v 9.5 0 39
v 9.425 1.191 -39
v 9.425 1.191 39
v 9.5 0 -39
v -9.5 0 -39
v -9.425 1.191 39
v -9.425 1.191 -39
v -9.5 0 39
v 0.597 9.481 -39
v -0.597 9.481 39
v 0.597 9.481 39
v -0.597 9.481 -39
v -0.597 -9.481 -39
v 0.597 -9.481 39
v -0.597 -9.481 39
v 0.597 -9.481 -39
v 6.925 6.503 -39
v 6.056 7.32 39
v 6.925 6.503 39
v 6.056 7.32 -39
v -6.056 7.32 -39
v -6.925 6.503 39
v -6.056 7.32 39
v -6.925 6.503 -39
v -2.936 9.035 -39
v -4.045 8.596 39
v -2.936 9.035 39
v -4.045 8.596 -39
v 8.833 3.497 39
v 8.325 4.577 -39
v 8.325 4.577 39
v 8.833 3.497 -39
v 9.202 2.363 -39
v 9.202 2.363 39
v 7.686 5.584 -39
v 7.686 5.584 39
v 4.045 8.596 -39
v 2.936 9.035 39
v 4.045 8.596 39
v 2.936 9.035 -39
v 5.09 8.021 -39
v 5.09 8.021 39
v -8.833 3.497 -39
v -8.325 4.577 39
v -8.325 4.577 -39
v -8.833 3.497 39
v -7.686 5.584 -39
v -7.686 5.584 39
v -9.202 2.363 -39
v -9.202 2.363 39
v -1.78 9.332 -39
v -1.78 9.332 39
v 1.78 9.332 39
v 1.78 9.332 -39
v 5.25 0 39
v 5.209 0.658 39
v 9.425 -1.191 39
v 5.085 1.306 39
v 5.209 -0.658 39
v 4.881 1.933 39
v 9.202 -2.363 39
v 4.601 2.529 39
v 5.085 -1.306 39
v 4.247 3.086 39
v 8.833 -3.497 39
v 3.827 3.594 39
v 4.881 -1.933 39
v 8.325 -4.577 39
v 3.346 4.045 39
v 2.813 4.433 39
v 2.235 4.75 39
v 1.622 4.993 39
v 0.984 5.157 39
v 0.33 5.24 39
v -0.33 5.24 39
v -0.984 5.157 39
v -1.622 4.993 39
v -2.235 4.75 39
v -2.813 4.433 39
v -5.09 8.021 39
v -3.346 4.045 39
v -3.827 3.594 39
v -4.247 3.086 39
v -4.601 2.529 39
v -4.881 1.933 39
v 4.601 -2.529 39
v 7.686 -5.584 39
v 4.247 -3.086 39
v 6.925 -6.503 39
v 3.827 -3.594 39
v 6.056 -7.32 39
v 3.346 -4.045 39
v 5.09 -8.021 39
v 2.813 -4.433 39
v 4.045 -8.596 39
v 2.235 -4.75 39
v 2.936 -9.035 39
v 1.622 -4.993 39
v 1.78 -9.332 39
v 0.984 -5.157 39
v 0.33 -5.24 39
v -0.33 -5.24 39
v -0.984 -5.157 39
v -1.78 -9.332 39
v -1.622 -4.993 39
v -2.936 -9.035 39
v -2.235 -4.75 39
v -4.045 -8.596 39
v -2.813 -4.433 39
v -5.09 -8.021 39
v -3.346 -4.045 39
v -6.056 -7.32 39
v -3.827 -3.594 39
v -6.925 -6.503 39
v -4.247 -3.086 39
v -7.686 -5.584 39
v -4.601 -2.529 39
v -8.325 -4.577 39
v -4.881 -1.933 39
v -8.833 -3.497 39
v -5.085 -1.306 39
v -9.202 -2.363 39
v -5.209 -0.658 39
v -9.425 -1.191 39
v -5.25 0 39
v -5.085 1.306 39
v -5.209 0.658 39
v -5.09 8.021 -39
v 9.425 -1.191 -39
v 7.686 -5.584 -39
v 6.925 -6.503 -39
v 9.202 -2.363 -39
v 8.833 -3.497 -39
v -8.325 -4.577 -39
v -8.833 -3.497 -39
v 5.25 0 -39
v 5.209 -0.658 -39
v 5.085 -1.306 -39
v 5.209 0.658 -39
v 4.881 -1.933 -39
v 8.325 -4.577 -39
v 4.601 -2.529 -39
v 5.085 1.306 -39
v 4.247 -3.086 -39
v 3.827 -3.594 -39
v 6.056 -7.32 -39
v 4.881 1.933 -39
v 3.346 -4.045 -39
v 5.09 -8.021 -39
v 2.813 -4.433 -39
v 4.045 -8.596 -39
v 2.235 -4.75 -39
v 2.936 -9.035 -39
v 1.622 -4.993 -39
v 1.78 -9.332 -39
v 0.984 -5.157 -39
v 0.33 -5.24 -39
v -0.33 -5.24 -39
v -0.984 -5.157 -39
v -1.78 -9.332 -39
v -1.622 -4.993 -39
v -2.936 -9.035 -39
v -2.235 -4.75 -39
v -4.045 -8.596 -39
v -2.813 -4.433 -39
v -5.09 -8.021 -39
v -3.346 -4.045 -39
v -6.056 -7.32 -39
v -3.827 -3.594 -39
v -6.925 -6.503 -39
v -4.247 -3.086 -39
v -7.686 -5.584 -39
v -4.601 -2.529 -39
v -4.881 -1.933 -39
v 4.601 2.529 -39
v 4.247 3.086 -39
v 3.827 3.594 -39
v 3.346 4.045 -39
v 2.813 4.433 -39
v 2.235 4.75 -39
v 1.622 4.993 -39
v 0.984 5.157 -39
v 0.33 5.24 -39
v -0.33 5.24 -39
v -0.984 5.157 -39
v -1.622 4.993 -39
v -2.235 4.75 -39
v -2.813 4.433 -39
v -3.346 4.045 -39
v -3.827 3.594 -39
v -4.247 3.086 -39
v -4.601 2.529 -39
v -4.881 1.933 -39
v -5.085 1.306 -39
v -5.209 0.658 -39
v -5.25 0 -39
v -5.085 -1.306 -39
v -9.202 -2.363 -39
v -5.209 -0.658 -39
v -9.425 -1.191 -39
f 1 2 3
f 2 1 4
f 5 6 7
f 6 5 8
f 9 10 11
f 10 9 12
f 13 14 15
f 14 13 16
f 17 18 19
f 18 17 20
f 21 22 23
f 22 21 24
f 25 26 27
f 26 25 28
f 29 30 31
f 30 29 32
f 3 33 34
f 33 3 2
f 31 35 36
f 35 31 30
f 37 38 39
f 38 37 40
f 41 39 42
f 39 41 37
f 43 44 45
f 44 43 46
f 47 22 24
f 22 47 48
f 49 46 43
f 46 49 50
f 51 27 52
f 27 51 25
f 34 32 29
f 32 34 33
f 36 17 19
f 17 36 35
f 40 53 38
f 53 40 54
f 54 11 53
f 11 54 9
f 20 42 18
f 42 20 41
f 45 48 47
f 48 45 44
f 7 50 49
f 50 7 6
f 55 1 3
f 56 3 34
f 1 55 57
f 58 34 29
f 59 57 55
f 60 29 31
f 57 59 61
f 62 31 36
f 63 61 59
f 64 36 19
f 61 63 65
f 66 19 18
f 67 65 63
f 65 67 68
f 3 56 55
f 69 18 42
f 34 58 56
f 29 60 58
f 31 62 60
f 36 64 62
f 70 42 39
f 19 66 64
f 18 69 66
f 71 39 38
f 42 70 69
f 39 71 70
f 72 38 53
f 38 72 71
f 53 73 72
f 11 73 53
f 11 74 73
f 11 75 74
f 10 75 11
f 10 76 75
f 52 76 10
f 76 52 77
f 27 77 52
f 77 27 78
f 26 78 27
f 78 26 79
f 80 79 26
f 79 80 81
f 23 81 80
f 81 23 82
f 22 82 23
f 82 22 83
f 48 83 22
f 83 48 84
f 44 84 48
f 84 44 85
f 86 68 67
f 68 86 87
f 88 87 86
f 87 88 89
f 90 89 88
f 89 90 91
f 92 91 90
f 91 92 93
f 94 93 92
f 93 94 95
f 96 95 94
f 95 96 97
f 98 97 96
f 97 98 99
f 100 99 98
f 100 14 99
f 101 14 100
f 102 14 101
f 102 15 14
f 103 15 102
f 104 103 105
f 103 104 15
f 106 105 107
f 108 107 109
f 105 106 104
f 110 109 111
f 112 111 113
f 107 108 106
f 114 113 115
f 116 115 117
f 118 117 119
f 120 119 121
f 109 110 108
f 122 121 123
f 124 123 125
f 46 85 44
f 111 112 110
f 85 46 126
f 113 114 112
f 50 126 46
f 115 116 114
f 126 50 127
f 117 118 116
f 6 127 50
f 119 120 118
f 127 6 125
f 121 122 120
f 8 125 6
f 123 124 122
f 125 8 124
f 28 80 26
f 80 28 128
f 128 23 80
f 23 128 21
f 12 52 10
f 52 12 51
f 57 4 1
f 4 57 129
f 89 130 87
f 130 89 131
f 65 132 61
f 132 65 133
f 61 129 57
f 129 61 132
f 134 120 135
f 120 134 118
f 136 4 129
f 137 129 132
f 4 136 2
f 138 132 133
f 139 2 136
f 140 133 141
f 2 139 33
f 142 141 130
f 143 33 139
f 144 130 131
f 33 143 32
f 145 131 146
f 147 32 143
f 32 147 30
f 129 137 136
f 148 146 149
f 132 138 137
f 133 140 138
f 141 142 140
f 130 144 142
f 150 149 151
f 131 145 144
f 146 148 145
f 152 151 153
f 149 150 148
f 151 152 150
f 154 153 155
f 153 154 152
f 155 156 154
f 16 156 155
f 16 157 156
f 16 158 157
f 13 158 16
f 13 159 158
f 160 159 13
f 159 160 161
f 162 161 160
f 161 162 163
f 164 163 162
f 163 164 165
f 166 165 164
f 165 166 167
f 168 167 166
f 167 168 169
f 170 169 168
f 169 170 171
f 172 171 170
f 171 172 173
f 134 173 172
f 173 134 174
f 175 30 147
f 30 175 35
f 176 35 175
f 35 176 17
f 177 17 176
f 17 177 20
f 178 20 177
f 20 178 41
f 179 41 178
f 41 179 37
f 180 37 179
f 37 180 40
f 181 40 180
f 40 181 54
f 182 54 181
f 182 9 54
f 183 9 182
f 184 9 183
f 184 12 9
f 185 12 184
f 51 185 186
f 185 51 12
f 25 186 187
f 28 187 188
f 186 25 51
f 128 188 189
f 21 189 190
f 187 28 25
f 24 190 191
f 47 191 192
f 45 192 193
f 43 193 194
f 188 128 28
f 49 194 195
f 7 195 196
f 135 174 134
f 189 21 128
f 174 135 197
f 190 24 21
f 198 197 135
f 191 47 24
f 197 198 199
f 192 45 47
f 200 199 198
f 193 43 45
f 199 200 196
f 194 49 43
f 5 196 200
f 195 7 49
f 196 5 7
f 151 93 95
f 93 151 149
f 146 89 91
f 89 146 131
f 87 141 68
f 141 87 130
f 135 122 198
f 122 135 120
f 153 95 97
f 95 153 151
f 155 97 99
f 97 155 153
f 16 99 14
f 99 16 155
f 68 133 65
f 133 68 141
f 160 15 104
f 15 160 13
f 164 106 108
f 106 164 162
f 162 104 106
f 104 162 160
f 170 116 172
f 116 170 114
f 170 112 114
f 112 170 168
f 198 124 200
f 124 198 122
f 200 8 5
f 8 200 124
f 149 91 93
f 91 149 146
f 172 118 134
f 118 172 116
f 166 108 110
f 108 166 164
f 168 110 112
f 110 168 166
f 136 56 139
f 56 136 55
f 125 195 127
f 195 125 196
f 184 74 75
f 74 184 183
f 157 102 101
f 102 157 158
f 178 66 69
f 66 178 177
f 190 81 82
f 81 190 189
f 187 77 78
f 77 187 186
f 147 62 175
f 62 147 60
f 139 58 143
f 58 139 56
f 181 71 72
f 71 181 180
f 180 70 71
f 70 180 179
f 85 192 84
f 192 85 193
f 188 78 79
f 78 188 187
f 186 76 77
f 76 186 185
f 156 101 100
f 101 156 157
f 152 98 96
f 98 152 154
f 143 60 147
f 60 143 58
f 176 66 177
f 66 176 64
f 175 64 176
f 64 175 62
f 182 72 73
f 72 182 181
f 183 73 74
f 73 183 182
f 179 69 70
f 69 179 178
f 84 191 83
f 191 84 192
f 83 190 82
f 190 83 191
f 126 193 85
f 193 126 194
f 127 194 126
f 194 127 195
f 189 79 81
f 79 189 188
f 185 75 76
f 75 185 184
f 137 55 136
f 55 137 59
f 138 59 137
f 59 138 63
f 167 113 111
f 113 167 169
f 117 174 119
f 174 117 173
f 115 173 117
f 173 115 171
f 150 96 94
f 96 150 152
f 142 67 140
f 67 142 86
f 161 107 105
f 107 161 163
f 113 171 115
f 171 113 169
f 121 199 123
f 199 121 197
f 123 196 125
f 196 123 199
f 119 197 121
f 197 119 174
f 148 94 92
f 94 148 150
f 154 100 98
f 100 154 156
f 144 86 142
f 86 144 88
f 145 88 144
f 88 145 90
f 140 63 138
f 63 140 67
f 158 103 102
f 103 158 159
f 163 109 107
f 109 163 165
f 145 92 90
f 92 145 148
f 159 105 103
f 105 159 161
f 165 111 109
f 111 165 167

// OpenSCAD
$fn = 50;


difference() {
	union() {
		translate(v = [0, 0, -39.0000000000]) {
			cylinder(h = 78, r = 9.5000000000);
		}
	}
	union() {
		translate(v = [0, 0, -100.0000000000]) {
			cylinder(h = 200, r = 5.2500000000);
		}
	}
}
